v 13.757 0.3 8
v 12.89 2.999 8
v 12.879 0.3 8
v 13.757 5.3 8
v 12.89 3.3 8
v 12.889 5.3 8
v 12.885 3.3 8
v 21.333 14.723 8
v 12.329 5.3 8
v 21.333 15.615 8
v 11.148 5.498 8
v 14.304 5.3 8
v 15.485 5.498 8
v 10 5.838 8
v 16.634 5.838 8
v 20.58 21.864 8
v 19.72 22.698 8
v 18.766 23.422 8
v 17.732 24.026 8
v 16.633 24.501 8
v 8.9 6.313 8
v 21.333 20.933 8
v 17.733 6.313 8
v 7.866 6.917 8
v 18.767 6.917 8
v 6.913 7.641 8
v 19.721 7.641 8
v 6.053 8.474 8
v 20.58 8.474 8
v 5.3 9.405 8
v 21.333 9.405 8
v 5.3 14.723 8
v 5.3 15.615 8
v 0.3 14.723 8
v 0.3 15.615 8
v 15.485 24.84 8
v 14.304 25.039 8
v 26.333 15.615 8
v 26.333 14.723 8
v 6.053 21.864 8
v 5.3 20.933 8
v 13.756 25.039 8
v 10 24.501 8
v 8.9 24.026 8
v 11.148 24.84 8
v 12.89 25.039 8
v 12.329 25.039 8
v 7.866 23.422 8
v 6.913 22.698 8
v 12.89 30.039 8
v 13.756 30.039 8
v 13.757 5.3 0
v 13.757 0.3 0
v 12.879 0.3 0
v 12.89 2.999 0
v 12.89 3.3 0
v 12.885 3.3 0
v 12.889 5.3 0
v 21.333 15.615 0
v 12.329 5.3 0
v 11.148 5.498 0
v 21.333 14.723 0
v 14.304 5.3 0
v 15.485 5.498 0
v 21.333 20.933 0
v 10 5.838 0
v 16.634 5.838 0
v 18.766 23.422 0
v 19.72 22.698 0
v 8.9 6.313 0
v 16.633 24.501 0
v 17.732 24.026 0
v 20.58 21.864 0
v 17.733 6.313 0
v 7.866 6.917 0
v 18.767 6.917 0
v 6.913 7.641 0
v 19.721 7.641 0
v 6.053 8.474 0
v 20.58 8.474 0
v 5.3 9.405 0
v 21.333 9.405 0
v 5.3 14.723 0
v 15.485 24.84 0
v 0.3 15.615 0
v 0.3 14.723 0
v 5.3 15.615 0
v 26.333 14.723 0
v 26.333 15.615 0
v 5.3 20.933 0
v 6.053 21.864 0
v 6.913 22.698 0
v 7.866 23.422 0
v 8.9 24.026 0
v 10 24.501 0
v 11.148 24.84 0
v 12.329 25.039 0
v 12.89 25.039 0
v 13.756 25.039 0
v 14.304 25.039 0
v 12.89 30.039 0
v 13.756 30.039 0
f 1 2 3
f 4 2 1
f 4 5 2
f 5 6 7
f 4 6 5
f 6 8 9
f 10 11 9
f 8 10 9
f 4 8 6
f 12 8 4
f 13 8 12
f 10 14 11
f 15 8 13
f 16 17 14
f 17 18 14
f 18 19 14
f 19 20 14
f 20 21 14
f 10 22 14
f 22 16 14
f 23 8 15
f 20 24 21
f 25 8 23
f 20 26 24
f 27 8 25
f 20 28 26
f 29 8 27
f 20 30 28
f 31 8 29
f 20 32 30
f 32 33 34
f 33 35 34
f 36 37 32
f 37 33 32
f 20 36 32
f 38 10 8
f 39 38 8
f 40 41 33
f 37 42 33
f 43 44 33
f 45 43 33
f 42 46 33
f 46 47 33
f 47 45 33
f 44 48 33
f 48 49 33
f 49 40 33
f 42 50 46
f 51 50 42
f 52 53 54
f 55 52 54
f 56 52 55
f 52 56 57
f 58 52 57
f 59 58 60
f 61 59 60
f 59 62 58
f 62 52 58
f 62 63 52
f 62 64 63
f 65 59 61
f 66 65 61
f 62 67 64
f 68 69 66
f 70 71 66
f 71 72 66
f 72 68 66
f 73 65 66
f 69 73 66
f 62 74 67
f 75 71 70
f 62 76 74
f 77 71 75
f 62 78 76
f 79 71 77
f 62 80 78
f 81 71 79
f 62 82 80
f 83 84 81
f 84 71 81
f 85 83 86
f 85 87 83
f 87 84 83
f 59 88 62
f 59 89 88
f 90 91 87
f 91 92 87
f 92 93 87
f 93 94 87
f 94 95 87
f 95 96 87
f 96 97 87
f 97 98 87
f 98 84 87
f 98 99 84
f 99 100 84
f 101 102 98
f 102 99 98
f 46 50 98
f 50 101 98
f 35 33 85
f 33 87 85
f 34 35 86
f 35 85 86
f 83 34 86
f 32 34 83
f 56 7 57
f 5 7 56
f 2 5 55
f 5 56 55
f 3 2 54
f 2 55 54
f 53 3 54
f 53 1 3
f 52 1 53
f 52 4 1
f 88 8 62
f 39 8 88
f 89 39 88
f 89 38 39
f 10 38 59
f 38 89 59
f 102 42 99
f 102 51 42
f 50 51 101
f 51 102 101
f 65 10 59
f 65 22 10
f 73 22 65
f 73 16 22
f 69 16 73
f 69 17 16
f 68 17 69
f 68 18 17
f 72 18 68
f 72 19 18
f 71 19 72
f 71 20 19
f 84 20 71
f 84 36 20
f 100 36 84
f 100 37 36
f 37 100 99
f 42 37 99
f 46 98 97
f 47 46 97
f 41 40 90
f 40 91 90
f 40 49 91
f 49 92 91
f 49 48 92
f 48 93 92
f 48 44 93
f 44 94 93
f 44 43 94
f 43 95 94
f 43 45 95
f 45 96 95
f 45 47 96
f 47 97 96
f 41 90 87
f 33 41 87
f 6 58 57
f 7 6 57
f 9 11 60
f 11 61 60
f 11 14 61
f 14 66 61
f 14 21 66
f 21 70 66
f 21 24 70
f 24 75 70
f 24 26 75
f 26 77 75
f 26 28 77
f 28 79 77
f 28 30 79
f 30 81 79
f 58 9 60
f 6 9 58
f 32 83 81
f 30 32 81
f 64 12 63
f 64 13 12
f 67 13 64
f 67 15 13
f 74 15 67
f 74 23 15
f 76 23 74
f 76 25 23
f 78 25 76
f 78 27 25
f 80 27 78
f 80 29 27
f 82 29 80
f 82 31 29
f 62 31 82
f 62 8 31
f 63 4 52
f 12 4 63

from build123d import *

# Parameters (mm, degrees)
BOSS_EXTRUDE1_DEPTH = 8
CUT_EXTRUDE2_DEPTH  = 9


with BuildPart() as part:
    # Sketch1 → Boss-Extrude1 (new body)
    with BuildSketch(Plane.XY):
        with BuildLine():
            Line((12.878924965, 0.299989593), (12.889991366, 2.998769855))
            Line((12.889991366, 2.998769855), (12.889991366, 3.3))
            Line((12.889991366, 3.3), (12.589993889, 3.3))
            Line((12.589993889, 3.3), (12.227716247, 3.3))
            ThreePointArc((12.227716247, 3.3), (7.127300009, 5.014869597), (3.3, 8.797302437))
            Line((3.3, 8.797302437), (3.3, 14.423444914))
            Line((3.3, 14.423444914), (3.3, 14.723444914))
            Line((3.3, 14.723444914), (3, 14.723444914))
            Line((3, 14.723444914), (0.3, 14.723444914))
            Line((0.3, 14.723444914), (0.3, 15.615227729))
            Line((0.3, 15.615227729), (3, 15.615227729))
            Line((3, 15.615227729), (3.3, 15.615227729))
            Line((3.3, 15.615227729), (3.3, 15.915227729))
            Line((3.3, 15.915227729), (3.3, 21.541370205))
            ThreePointArc((3.3, 21.541370205), (7.127300009, 25.323803045), (12.227716247, 27.038672642))
            Line((12.227716247, 27.038672642), (12.589994095, 27.038672642))
            Line((12.589994095, 27.038672642), (12.889991573, 27.038672642))
            Line((12.889991573, 27.038672642), (12.889991573, 27.339902808))
            Line((12.889991573, 27.339902808), (12.889991573, 30.038672936))
            Line((12.889991573, 30.038672936), (13.756179426, 30.038672936))
            Line((13.756179426, 30.038672936), (13.756179426, 27.338672642))
            Line((13.756179426, 27.338672642), (13.756179426, 27.038672642))
            Line((13.756179426, 27.038672642), (14.056179426, 27.038672642))
            Line((14.056179426, 27.038672642), (14.40506038, 27.038672642))
            ThreePointArc((14.40506038, 27.038672642), (19.505476619, 25.323803045), (23.332776628, 21.541370205))
            Line((23.332776628, 21.541370205), (23.332776628, 15.915227729))
            Line((23.332776628, 15.915227729), (23.332776628, 15.615227729))
            Line((23.332776628, 15.615227729), (23.632776628, 15.615227729))
            Line((23.632776628, 15.615227729), (26.333196522, 15.615227729))
            Line((26.333196522, 15.615227729), (26.333196522, 14.723444914))
            Line((26.333196522, 14.723444914), (23.633196522, 14.723444914))
            Line((23.633196522, 14.723444914), (23.333196522, 14.723444914))
            Line((23.333196522, 14.723444914), (23.333196522, 14.423444914))
            Line((23.333196522, 14.423444914), (23.333196522, 8.797302437))
            ThreePointArc((23.333196522, 8.797302437), (19.505896514, 5.014869597), (14.405480275, 3.3))
            Line((14.405480275, 3.3), (14.056599321, 3.3))
            Line((14.056599321, 3.3), (13.756599321, 3.3))
            Line((13.756599321, 3.3), (13.756599321, 3))
            Line((13.756599321, 3), (13.756599321, 0.3))
            Line((13.756599321, 0.3), (12.878924965, 0.299989593))
        make_face()
    extrude(amount=BOSS_EXTRUDE1_DEPTH)

    # Sketch2 → Cut-Extrude2 (cut, through all)
    with BuildSketch(Plane.XY.offset(8)):
        with BuildLine():
            Line((12.889991573, 30.038672936), (-3.324020912, 25.076549212))
            Line((-3.324020912, 25.076549212), (0.3, 15.615227729))
            Line((0.3, 15.615227729), (3.3, 15.615227729))
            Line((3.3, 15.615227729), (3.3, 21.541370205))
            ThreePointArc((3.3, 21.541370205), (7.127300009, 25.323803045), (12.227716247, 27.038672642))
            Line((12.227716247, 27.038672642), (12.889991573, 27.038672642))
            Line((12.889991573, 27.038672642), (12.889991573, 30.038672936))
        make_face()
        with BuildLine():
            Line((26.333196522, 15.615227729), (25.678702072, 25.392177395))
            Line((25.678702072, 25.392177395), (13.756179426, 30.038672936))
            Line((13.756179426, 30.038672936), (13.756179426, 27.038672642))
            Line((13.756179426, 27.038672642), (14.40506038, 27.038672642))
            ThreePointArc((14.40506038, 27.038672642), (19.505476619, 25.323803045), (23.332776628, 21.541370205))
            Line((23.332776628, 21.541370205), (23.332776628, 15.615227729))
            Line((23.332776628, 15.615227729), (26.333196522, 15.615227729))
        make_face()
        with BuildLine():
            Line((21.332776628, 20.933212865), (21.332776628, 15.615227729))
            Line((21.332776628, 15.615227729), (23.332776628, 15.615227729))
            Line((23.332776628, 15.615227729), (23.332776628, 21.541370205))
            ThreePointArc((23.332776628, 21.541370205), (19.505476619, 25.323803045), (14.40506038, 27.038672642))
            Line((14.40506038, 27.038672642), (13.756179426, 27.038672642))
            Line((13.756179426, 27.038672642), (13.756179426, 25.038672642))
            Line((13.756179426, 25.038672642), (14.303761373, 25.038672642))
            ThreePointArc((14.303761373, 25.038672642), (18.258523966, 23.739709455), (21.332776628, 20.933212865))
        make_face()
        with BuildLine():
            Line((12.329015255, 25.038672642), (12.889991573, 25.038672642))
            Line((12.889991573, 25.038672642), (12.889991573, 27.038672642))
            Line((12.889991573, 27.038672642), (12.227716247, 27.038672642))
            ThreePointArc((12.227716247, 27.038672642), (7.127300009, 25.323803045), (3.3, 21.541370205))
            Line((3.3, 21.541370205), (3.3, 15.615227729))
            Line((3.3, 15.615227729), (5.3, 15.615227729))
            Line((5.3, 15.615227729), (5.3, 20.933212865))
            ThreePointArc((5.3, 20.933212865), (8.374252661, 23.739709455), (12.329015255, 25.038672642))
        make_face()
        with BuildLine():
            Line((5.3, 9.405459777), (5.3, 14.723444914))
            Line((5.3, 14.723444914), (3.3, 14.723444914))
            Line((3.3, 14.723444914), (3.3, 8.797302437))
            ThreePointArc((3.3, 8.797302437), (7.127300009, 5.014869597), (12.227716247, 3.3))
            Line((12.227716247, 3.3), (12.884961194, 3.3))
            Line((12.884961194, 3.3), (12.888985332, 5.3))
            Line((12.888985332, 5.3), (12.329015255, 5.3))
            ThreePointArc((12.329015255, 5.3), (8.374252661, 6.598963188), (5.3, 9.405459777))
        make_face()
        with BuildLine():
            Line((3.3, 8.797302437), (3.3, 14.723444914))
            Line((3.3, 14.723444914), (0.3, 14.723444914))
            Line((0.3, 14.723444914), (4.782985331, 0.07504351))
            Line((4.782985331, 0.07504351), (12.878924965, 0.299989593))
            Line((12.878924965, 0.299989593), (12.884961194, 3.3))
            Line((12.884961194, 3.3), (12.227716247, 3.3))
            ThreePointArc((12.227716247, 3.3), (7.127300009, 5.014869597), (3.3, 8.797302437))
        make_face()
        with BuildLine():
            Line((13.756599321, 5.3), (13.756599321, 3.3))
            Line((13.756599321, 3.3), (14.405480275, 3.3))
            ThreePointArc((14.405480275, 3.3), (19.505896514, 5.014869597), (23.333196522, 8.797302437))
            Line((23.333196522, 8.797302437), (23.333196522, 14.723444914))
            Line((23.333196522, 14.723444914), (21.333196522, 14.723444914))
            Line((21.333196522, 14.723444914), (21.333196522, 9.405459777))
            ThreePointArc((21.333196522, 9.405459777), (18.258943861, 6.598963188), (14.304181268, 5.3))
            Line((14.304181268, 5.3), (13.756599321, 5.3))
        make_face()
        with BuildLine():
            Line((13.756599321, 0.3), (29.080472483, 10.031605851))
            Line((29.080472483, 10.031605851), (26.333196522, 14.723444914))
            Line((26.333196522, 14.723444914), (23.333196522, 14.723444914))
            Line((23.333196522, 14.723444914), (23.333196522, 8.797302437))
            ThreePointArc((23.333196522, 8.797302437), (19.505896514, 5.014869597), (14.405480275, 3.3))
            Line((14.405480275, 3.3), (13.756599321, 3.3))
            Line((13.756599321, 3.3), (13.756599321, 0.3))
        make_face()
    extrude(amount=-CUT_EXTRUDE2_DEPTH, mode=Mode.SUBTRACT)


solid = part.part
